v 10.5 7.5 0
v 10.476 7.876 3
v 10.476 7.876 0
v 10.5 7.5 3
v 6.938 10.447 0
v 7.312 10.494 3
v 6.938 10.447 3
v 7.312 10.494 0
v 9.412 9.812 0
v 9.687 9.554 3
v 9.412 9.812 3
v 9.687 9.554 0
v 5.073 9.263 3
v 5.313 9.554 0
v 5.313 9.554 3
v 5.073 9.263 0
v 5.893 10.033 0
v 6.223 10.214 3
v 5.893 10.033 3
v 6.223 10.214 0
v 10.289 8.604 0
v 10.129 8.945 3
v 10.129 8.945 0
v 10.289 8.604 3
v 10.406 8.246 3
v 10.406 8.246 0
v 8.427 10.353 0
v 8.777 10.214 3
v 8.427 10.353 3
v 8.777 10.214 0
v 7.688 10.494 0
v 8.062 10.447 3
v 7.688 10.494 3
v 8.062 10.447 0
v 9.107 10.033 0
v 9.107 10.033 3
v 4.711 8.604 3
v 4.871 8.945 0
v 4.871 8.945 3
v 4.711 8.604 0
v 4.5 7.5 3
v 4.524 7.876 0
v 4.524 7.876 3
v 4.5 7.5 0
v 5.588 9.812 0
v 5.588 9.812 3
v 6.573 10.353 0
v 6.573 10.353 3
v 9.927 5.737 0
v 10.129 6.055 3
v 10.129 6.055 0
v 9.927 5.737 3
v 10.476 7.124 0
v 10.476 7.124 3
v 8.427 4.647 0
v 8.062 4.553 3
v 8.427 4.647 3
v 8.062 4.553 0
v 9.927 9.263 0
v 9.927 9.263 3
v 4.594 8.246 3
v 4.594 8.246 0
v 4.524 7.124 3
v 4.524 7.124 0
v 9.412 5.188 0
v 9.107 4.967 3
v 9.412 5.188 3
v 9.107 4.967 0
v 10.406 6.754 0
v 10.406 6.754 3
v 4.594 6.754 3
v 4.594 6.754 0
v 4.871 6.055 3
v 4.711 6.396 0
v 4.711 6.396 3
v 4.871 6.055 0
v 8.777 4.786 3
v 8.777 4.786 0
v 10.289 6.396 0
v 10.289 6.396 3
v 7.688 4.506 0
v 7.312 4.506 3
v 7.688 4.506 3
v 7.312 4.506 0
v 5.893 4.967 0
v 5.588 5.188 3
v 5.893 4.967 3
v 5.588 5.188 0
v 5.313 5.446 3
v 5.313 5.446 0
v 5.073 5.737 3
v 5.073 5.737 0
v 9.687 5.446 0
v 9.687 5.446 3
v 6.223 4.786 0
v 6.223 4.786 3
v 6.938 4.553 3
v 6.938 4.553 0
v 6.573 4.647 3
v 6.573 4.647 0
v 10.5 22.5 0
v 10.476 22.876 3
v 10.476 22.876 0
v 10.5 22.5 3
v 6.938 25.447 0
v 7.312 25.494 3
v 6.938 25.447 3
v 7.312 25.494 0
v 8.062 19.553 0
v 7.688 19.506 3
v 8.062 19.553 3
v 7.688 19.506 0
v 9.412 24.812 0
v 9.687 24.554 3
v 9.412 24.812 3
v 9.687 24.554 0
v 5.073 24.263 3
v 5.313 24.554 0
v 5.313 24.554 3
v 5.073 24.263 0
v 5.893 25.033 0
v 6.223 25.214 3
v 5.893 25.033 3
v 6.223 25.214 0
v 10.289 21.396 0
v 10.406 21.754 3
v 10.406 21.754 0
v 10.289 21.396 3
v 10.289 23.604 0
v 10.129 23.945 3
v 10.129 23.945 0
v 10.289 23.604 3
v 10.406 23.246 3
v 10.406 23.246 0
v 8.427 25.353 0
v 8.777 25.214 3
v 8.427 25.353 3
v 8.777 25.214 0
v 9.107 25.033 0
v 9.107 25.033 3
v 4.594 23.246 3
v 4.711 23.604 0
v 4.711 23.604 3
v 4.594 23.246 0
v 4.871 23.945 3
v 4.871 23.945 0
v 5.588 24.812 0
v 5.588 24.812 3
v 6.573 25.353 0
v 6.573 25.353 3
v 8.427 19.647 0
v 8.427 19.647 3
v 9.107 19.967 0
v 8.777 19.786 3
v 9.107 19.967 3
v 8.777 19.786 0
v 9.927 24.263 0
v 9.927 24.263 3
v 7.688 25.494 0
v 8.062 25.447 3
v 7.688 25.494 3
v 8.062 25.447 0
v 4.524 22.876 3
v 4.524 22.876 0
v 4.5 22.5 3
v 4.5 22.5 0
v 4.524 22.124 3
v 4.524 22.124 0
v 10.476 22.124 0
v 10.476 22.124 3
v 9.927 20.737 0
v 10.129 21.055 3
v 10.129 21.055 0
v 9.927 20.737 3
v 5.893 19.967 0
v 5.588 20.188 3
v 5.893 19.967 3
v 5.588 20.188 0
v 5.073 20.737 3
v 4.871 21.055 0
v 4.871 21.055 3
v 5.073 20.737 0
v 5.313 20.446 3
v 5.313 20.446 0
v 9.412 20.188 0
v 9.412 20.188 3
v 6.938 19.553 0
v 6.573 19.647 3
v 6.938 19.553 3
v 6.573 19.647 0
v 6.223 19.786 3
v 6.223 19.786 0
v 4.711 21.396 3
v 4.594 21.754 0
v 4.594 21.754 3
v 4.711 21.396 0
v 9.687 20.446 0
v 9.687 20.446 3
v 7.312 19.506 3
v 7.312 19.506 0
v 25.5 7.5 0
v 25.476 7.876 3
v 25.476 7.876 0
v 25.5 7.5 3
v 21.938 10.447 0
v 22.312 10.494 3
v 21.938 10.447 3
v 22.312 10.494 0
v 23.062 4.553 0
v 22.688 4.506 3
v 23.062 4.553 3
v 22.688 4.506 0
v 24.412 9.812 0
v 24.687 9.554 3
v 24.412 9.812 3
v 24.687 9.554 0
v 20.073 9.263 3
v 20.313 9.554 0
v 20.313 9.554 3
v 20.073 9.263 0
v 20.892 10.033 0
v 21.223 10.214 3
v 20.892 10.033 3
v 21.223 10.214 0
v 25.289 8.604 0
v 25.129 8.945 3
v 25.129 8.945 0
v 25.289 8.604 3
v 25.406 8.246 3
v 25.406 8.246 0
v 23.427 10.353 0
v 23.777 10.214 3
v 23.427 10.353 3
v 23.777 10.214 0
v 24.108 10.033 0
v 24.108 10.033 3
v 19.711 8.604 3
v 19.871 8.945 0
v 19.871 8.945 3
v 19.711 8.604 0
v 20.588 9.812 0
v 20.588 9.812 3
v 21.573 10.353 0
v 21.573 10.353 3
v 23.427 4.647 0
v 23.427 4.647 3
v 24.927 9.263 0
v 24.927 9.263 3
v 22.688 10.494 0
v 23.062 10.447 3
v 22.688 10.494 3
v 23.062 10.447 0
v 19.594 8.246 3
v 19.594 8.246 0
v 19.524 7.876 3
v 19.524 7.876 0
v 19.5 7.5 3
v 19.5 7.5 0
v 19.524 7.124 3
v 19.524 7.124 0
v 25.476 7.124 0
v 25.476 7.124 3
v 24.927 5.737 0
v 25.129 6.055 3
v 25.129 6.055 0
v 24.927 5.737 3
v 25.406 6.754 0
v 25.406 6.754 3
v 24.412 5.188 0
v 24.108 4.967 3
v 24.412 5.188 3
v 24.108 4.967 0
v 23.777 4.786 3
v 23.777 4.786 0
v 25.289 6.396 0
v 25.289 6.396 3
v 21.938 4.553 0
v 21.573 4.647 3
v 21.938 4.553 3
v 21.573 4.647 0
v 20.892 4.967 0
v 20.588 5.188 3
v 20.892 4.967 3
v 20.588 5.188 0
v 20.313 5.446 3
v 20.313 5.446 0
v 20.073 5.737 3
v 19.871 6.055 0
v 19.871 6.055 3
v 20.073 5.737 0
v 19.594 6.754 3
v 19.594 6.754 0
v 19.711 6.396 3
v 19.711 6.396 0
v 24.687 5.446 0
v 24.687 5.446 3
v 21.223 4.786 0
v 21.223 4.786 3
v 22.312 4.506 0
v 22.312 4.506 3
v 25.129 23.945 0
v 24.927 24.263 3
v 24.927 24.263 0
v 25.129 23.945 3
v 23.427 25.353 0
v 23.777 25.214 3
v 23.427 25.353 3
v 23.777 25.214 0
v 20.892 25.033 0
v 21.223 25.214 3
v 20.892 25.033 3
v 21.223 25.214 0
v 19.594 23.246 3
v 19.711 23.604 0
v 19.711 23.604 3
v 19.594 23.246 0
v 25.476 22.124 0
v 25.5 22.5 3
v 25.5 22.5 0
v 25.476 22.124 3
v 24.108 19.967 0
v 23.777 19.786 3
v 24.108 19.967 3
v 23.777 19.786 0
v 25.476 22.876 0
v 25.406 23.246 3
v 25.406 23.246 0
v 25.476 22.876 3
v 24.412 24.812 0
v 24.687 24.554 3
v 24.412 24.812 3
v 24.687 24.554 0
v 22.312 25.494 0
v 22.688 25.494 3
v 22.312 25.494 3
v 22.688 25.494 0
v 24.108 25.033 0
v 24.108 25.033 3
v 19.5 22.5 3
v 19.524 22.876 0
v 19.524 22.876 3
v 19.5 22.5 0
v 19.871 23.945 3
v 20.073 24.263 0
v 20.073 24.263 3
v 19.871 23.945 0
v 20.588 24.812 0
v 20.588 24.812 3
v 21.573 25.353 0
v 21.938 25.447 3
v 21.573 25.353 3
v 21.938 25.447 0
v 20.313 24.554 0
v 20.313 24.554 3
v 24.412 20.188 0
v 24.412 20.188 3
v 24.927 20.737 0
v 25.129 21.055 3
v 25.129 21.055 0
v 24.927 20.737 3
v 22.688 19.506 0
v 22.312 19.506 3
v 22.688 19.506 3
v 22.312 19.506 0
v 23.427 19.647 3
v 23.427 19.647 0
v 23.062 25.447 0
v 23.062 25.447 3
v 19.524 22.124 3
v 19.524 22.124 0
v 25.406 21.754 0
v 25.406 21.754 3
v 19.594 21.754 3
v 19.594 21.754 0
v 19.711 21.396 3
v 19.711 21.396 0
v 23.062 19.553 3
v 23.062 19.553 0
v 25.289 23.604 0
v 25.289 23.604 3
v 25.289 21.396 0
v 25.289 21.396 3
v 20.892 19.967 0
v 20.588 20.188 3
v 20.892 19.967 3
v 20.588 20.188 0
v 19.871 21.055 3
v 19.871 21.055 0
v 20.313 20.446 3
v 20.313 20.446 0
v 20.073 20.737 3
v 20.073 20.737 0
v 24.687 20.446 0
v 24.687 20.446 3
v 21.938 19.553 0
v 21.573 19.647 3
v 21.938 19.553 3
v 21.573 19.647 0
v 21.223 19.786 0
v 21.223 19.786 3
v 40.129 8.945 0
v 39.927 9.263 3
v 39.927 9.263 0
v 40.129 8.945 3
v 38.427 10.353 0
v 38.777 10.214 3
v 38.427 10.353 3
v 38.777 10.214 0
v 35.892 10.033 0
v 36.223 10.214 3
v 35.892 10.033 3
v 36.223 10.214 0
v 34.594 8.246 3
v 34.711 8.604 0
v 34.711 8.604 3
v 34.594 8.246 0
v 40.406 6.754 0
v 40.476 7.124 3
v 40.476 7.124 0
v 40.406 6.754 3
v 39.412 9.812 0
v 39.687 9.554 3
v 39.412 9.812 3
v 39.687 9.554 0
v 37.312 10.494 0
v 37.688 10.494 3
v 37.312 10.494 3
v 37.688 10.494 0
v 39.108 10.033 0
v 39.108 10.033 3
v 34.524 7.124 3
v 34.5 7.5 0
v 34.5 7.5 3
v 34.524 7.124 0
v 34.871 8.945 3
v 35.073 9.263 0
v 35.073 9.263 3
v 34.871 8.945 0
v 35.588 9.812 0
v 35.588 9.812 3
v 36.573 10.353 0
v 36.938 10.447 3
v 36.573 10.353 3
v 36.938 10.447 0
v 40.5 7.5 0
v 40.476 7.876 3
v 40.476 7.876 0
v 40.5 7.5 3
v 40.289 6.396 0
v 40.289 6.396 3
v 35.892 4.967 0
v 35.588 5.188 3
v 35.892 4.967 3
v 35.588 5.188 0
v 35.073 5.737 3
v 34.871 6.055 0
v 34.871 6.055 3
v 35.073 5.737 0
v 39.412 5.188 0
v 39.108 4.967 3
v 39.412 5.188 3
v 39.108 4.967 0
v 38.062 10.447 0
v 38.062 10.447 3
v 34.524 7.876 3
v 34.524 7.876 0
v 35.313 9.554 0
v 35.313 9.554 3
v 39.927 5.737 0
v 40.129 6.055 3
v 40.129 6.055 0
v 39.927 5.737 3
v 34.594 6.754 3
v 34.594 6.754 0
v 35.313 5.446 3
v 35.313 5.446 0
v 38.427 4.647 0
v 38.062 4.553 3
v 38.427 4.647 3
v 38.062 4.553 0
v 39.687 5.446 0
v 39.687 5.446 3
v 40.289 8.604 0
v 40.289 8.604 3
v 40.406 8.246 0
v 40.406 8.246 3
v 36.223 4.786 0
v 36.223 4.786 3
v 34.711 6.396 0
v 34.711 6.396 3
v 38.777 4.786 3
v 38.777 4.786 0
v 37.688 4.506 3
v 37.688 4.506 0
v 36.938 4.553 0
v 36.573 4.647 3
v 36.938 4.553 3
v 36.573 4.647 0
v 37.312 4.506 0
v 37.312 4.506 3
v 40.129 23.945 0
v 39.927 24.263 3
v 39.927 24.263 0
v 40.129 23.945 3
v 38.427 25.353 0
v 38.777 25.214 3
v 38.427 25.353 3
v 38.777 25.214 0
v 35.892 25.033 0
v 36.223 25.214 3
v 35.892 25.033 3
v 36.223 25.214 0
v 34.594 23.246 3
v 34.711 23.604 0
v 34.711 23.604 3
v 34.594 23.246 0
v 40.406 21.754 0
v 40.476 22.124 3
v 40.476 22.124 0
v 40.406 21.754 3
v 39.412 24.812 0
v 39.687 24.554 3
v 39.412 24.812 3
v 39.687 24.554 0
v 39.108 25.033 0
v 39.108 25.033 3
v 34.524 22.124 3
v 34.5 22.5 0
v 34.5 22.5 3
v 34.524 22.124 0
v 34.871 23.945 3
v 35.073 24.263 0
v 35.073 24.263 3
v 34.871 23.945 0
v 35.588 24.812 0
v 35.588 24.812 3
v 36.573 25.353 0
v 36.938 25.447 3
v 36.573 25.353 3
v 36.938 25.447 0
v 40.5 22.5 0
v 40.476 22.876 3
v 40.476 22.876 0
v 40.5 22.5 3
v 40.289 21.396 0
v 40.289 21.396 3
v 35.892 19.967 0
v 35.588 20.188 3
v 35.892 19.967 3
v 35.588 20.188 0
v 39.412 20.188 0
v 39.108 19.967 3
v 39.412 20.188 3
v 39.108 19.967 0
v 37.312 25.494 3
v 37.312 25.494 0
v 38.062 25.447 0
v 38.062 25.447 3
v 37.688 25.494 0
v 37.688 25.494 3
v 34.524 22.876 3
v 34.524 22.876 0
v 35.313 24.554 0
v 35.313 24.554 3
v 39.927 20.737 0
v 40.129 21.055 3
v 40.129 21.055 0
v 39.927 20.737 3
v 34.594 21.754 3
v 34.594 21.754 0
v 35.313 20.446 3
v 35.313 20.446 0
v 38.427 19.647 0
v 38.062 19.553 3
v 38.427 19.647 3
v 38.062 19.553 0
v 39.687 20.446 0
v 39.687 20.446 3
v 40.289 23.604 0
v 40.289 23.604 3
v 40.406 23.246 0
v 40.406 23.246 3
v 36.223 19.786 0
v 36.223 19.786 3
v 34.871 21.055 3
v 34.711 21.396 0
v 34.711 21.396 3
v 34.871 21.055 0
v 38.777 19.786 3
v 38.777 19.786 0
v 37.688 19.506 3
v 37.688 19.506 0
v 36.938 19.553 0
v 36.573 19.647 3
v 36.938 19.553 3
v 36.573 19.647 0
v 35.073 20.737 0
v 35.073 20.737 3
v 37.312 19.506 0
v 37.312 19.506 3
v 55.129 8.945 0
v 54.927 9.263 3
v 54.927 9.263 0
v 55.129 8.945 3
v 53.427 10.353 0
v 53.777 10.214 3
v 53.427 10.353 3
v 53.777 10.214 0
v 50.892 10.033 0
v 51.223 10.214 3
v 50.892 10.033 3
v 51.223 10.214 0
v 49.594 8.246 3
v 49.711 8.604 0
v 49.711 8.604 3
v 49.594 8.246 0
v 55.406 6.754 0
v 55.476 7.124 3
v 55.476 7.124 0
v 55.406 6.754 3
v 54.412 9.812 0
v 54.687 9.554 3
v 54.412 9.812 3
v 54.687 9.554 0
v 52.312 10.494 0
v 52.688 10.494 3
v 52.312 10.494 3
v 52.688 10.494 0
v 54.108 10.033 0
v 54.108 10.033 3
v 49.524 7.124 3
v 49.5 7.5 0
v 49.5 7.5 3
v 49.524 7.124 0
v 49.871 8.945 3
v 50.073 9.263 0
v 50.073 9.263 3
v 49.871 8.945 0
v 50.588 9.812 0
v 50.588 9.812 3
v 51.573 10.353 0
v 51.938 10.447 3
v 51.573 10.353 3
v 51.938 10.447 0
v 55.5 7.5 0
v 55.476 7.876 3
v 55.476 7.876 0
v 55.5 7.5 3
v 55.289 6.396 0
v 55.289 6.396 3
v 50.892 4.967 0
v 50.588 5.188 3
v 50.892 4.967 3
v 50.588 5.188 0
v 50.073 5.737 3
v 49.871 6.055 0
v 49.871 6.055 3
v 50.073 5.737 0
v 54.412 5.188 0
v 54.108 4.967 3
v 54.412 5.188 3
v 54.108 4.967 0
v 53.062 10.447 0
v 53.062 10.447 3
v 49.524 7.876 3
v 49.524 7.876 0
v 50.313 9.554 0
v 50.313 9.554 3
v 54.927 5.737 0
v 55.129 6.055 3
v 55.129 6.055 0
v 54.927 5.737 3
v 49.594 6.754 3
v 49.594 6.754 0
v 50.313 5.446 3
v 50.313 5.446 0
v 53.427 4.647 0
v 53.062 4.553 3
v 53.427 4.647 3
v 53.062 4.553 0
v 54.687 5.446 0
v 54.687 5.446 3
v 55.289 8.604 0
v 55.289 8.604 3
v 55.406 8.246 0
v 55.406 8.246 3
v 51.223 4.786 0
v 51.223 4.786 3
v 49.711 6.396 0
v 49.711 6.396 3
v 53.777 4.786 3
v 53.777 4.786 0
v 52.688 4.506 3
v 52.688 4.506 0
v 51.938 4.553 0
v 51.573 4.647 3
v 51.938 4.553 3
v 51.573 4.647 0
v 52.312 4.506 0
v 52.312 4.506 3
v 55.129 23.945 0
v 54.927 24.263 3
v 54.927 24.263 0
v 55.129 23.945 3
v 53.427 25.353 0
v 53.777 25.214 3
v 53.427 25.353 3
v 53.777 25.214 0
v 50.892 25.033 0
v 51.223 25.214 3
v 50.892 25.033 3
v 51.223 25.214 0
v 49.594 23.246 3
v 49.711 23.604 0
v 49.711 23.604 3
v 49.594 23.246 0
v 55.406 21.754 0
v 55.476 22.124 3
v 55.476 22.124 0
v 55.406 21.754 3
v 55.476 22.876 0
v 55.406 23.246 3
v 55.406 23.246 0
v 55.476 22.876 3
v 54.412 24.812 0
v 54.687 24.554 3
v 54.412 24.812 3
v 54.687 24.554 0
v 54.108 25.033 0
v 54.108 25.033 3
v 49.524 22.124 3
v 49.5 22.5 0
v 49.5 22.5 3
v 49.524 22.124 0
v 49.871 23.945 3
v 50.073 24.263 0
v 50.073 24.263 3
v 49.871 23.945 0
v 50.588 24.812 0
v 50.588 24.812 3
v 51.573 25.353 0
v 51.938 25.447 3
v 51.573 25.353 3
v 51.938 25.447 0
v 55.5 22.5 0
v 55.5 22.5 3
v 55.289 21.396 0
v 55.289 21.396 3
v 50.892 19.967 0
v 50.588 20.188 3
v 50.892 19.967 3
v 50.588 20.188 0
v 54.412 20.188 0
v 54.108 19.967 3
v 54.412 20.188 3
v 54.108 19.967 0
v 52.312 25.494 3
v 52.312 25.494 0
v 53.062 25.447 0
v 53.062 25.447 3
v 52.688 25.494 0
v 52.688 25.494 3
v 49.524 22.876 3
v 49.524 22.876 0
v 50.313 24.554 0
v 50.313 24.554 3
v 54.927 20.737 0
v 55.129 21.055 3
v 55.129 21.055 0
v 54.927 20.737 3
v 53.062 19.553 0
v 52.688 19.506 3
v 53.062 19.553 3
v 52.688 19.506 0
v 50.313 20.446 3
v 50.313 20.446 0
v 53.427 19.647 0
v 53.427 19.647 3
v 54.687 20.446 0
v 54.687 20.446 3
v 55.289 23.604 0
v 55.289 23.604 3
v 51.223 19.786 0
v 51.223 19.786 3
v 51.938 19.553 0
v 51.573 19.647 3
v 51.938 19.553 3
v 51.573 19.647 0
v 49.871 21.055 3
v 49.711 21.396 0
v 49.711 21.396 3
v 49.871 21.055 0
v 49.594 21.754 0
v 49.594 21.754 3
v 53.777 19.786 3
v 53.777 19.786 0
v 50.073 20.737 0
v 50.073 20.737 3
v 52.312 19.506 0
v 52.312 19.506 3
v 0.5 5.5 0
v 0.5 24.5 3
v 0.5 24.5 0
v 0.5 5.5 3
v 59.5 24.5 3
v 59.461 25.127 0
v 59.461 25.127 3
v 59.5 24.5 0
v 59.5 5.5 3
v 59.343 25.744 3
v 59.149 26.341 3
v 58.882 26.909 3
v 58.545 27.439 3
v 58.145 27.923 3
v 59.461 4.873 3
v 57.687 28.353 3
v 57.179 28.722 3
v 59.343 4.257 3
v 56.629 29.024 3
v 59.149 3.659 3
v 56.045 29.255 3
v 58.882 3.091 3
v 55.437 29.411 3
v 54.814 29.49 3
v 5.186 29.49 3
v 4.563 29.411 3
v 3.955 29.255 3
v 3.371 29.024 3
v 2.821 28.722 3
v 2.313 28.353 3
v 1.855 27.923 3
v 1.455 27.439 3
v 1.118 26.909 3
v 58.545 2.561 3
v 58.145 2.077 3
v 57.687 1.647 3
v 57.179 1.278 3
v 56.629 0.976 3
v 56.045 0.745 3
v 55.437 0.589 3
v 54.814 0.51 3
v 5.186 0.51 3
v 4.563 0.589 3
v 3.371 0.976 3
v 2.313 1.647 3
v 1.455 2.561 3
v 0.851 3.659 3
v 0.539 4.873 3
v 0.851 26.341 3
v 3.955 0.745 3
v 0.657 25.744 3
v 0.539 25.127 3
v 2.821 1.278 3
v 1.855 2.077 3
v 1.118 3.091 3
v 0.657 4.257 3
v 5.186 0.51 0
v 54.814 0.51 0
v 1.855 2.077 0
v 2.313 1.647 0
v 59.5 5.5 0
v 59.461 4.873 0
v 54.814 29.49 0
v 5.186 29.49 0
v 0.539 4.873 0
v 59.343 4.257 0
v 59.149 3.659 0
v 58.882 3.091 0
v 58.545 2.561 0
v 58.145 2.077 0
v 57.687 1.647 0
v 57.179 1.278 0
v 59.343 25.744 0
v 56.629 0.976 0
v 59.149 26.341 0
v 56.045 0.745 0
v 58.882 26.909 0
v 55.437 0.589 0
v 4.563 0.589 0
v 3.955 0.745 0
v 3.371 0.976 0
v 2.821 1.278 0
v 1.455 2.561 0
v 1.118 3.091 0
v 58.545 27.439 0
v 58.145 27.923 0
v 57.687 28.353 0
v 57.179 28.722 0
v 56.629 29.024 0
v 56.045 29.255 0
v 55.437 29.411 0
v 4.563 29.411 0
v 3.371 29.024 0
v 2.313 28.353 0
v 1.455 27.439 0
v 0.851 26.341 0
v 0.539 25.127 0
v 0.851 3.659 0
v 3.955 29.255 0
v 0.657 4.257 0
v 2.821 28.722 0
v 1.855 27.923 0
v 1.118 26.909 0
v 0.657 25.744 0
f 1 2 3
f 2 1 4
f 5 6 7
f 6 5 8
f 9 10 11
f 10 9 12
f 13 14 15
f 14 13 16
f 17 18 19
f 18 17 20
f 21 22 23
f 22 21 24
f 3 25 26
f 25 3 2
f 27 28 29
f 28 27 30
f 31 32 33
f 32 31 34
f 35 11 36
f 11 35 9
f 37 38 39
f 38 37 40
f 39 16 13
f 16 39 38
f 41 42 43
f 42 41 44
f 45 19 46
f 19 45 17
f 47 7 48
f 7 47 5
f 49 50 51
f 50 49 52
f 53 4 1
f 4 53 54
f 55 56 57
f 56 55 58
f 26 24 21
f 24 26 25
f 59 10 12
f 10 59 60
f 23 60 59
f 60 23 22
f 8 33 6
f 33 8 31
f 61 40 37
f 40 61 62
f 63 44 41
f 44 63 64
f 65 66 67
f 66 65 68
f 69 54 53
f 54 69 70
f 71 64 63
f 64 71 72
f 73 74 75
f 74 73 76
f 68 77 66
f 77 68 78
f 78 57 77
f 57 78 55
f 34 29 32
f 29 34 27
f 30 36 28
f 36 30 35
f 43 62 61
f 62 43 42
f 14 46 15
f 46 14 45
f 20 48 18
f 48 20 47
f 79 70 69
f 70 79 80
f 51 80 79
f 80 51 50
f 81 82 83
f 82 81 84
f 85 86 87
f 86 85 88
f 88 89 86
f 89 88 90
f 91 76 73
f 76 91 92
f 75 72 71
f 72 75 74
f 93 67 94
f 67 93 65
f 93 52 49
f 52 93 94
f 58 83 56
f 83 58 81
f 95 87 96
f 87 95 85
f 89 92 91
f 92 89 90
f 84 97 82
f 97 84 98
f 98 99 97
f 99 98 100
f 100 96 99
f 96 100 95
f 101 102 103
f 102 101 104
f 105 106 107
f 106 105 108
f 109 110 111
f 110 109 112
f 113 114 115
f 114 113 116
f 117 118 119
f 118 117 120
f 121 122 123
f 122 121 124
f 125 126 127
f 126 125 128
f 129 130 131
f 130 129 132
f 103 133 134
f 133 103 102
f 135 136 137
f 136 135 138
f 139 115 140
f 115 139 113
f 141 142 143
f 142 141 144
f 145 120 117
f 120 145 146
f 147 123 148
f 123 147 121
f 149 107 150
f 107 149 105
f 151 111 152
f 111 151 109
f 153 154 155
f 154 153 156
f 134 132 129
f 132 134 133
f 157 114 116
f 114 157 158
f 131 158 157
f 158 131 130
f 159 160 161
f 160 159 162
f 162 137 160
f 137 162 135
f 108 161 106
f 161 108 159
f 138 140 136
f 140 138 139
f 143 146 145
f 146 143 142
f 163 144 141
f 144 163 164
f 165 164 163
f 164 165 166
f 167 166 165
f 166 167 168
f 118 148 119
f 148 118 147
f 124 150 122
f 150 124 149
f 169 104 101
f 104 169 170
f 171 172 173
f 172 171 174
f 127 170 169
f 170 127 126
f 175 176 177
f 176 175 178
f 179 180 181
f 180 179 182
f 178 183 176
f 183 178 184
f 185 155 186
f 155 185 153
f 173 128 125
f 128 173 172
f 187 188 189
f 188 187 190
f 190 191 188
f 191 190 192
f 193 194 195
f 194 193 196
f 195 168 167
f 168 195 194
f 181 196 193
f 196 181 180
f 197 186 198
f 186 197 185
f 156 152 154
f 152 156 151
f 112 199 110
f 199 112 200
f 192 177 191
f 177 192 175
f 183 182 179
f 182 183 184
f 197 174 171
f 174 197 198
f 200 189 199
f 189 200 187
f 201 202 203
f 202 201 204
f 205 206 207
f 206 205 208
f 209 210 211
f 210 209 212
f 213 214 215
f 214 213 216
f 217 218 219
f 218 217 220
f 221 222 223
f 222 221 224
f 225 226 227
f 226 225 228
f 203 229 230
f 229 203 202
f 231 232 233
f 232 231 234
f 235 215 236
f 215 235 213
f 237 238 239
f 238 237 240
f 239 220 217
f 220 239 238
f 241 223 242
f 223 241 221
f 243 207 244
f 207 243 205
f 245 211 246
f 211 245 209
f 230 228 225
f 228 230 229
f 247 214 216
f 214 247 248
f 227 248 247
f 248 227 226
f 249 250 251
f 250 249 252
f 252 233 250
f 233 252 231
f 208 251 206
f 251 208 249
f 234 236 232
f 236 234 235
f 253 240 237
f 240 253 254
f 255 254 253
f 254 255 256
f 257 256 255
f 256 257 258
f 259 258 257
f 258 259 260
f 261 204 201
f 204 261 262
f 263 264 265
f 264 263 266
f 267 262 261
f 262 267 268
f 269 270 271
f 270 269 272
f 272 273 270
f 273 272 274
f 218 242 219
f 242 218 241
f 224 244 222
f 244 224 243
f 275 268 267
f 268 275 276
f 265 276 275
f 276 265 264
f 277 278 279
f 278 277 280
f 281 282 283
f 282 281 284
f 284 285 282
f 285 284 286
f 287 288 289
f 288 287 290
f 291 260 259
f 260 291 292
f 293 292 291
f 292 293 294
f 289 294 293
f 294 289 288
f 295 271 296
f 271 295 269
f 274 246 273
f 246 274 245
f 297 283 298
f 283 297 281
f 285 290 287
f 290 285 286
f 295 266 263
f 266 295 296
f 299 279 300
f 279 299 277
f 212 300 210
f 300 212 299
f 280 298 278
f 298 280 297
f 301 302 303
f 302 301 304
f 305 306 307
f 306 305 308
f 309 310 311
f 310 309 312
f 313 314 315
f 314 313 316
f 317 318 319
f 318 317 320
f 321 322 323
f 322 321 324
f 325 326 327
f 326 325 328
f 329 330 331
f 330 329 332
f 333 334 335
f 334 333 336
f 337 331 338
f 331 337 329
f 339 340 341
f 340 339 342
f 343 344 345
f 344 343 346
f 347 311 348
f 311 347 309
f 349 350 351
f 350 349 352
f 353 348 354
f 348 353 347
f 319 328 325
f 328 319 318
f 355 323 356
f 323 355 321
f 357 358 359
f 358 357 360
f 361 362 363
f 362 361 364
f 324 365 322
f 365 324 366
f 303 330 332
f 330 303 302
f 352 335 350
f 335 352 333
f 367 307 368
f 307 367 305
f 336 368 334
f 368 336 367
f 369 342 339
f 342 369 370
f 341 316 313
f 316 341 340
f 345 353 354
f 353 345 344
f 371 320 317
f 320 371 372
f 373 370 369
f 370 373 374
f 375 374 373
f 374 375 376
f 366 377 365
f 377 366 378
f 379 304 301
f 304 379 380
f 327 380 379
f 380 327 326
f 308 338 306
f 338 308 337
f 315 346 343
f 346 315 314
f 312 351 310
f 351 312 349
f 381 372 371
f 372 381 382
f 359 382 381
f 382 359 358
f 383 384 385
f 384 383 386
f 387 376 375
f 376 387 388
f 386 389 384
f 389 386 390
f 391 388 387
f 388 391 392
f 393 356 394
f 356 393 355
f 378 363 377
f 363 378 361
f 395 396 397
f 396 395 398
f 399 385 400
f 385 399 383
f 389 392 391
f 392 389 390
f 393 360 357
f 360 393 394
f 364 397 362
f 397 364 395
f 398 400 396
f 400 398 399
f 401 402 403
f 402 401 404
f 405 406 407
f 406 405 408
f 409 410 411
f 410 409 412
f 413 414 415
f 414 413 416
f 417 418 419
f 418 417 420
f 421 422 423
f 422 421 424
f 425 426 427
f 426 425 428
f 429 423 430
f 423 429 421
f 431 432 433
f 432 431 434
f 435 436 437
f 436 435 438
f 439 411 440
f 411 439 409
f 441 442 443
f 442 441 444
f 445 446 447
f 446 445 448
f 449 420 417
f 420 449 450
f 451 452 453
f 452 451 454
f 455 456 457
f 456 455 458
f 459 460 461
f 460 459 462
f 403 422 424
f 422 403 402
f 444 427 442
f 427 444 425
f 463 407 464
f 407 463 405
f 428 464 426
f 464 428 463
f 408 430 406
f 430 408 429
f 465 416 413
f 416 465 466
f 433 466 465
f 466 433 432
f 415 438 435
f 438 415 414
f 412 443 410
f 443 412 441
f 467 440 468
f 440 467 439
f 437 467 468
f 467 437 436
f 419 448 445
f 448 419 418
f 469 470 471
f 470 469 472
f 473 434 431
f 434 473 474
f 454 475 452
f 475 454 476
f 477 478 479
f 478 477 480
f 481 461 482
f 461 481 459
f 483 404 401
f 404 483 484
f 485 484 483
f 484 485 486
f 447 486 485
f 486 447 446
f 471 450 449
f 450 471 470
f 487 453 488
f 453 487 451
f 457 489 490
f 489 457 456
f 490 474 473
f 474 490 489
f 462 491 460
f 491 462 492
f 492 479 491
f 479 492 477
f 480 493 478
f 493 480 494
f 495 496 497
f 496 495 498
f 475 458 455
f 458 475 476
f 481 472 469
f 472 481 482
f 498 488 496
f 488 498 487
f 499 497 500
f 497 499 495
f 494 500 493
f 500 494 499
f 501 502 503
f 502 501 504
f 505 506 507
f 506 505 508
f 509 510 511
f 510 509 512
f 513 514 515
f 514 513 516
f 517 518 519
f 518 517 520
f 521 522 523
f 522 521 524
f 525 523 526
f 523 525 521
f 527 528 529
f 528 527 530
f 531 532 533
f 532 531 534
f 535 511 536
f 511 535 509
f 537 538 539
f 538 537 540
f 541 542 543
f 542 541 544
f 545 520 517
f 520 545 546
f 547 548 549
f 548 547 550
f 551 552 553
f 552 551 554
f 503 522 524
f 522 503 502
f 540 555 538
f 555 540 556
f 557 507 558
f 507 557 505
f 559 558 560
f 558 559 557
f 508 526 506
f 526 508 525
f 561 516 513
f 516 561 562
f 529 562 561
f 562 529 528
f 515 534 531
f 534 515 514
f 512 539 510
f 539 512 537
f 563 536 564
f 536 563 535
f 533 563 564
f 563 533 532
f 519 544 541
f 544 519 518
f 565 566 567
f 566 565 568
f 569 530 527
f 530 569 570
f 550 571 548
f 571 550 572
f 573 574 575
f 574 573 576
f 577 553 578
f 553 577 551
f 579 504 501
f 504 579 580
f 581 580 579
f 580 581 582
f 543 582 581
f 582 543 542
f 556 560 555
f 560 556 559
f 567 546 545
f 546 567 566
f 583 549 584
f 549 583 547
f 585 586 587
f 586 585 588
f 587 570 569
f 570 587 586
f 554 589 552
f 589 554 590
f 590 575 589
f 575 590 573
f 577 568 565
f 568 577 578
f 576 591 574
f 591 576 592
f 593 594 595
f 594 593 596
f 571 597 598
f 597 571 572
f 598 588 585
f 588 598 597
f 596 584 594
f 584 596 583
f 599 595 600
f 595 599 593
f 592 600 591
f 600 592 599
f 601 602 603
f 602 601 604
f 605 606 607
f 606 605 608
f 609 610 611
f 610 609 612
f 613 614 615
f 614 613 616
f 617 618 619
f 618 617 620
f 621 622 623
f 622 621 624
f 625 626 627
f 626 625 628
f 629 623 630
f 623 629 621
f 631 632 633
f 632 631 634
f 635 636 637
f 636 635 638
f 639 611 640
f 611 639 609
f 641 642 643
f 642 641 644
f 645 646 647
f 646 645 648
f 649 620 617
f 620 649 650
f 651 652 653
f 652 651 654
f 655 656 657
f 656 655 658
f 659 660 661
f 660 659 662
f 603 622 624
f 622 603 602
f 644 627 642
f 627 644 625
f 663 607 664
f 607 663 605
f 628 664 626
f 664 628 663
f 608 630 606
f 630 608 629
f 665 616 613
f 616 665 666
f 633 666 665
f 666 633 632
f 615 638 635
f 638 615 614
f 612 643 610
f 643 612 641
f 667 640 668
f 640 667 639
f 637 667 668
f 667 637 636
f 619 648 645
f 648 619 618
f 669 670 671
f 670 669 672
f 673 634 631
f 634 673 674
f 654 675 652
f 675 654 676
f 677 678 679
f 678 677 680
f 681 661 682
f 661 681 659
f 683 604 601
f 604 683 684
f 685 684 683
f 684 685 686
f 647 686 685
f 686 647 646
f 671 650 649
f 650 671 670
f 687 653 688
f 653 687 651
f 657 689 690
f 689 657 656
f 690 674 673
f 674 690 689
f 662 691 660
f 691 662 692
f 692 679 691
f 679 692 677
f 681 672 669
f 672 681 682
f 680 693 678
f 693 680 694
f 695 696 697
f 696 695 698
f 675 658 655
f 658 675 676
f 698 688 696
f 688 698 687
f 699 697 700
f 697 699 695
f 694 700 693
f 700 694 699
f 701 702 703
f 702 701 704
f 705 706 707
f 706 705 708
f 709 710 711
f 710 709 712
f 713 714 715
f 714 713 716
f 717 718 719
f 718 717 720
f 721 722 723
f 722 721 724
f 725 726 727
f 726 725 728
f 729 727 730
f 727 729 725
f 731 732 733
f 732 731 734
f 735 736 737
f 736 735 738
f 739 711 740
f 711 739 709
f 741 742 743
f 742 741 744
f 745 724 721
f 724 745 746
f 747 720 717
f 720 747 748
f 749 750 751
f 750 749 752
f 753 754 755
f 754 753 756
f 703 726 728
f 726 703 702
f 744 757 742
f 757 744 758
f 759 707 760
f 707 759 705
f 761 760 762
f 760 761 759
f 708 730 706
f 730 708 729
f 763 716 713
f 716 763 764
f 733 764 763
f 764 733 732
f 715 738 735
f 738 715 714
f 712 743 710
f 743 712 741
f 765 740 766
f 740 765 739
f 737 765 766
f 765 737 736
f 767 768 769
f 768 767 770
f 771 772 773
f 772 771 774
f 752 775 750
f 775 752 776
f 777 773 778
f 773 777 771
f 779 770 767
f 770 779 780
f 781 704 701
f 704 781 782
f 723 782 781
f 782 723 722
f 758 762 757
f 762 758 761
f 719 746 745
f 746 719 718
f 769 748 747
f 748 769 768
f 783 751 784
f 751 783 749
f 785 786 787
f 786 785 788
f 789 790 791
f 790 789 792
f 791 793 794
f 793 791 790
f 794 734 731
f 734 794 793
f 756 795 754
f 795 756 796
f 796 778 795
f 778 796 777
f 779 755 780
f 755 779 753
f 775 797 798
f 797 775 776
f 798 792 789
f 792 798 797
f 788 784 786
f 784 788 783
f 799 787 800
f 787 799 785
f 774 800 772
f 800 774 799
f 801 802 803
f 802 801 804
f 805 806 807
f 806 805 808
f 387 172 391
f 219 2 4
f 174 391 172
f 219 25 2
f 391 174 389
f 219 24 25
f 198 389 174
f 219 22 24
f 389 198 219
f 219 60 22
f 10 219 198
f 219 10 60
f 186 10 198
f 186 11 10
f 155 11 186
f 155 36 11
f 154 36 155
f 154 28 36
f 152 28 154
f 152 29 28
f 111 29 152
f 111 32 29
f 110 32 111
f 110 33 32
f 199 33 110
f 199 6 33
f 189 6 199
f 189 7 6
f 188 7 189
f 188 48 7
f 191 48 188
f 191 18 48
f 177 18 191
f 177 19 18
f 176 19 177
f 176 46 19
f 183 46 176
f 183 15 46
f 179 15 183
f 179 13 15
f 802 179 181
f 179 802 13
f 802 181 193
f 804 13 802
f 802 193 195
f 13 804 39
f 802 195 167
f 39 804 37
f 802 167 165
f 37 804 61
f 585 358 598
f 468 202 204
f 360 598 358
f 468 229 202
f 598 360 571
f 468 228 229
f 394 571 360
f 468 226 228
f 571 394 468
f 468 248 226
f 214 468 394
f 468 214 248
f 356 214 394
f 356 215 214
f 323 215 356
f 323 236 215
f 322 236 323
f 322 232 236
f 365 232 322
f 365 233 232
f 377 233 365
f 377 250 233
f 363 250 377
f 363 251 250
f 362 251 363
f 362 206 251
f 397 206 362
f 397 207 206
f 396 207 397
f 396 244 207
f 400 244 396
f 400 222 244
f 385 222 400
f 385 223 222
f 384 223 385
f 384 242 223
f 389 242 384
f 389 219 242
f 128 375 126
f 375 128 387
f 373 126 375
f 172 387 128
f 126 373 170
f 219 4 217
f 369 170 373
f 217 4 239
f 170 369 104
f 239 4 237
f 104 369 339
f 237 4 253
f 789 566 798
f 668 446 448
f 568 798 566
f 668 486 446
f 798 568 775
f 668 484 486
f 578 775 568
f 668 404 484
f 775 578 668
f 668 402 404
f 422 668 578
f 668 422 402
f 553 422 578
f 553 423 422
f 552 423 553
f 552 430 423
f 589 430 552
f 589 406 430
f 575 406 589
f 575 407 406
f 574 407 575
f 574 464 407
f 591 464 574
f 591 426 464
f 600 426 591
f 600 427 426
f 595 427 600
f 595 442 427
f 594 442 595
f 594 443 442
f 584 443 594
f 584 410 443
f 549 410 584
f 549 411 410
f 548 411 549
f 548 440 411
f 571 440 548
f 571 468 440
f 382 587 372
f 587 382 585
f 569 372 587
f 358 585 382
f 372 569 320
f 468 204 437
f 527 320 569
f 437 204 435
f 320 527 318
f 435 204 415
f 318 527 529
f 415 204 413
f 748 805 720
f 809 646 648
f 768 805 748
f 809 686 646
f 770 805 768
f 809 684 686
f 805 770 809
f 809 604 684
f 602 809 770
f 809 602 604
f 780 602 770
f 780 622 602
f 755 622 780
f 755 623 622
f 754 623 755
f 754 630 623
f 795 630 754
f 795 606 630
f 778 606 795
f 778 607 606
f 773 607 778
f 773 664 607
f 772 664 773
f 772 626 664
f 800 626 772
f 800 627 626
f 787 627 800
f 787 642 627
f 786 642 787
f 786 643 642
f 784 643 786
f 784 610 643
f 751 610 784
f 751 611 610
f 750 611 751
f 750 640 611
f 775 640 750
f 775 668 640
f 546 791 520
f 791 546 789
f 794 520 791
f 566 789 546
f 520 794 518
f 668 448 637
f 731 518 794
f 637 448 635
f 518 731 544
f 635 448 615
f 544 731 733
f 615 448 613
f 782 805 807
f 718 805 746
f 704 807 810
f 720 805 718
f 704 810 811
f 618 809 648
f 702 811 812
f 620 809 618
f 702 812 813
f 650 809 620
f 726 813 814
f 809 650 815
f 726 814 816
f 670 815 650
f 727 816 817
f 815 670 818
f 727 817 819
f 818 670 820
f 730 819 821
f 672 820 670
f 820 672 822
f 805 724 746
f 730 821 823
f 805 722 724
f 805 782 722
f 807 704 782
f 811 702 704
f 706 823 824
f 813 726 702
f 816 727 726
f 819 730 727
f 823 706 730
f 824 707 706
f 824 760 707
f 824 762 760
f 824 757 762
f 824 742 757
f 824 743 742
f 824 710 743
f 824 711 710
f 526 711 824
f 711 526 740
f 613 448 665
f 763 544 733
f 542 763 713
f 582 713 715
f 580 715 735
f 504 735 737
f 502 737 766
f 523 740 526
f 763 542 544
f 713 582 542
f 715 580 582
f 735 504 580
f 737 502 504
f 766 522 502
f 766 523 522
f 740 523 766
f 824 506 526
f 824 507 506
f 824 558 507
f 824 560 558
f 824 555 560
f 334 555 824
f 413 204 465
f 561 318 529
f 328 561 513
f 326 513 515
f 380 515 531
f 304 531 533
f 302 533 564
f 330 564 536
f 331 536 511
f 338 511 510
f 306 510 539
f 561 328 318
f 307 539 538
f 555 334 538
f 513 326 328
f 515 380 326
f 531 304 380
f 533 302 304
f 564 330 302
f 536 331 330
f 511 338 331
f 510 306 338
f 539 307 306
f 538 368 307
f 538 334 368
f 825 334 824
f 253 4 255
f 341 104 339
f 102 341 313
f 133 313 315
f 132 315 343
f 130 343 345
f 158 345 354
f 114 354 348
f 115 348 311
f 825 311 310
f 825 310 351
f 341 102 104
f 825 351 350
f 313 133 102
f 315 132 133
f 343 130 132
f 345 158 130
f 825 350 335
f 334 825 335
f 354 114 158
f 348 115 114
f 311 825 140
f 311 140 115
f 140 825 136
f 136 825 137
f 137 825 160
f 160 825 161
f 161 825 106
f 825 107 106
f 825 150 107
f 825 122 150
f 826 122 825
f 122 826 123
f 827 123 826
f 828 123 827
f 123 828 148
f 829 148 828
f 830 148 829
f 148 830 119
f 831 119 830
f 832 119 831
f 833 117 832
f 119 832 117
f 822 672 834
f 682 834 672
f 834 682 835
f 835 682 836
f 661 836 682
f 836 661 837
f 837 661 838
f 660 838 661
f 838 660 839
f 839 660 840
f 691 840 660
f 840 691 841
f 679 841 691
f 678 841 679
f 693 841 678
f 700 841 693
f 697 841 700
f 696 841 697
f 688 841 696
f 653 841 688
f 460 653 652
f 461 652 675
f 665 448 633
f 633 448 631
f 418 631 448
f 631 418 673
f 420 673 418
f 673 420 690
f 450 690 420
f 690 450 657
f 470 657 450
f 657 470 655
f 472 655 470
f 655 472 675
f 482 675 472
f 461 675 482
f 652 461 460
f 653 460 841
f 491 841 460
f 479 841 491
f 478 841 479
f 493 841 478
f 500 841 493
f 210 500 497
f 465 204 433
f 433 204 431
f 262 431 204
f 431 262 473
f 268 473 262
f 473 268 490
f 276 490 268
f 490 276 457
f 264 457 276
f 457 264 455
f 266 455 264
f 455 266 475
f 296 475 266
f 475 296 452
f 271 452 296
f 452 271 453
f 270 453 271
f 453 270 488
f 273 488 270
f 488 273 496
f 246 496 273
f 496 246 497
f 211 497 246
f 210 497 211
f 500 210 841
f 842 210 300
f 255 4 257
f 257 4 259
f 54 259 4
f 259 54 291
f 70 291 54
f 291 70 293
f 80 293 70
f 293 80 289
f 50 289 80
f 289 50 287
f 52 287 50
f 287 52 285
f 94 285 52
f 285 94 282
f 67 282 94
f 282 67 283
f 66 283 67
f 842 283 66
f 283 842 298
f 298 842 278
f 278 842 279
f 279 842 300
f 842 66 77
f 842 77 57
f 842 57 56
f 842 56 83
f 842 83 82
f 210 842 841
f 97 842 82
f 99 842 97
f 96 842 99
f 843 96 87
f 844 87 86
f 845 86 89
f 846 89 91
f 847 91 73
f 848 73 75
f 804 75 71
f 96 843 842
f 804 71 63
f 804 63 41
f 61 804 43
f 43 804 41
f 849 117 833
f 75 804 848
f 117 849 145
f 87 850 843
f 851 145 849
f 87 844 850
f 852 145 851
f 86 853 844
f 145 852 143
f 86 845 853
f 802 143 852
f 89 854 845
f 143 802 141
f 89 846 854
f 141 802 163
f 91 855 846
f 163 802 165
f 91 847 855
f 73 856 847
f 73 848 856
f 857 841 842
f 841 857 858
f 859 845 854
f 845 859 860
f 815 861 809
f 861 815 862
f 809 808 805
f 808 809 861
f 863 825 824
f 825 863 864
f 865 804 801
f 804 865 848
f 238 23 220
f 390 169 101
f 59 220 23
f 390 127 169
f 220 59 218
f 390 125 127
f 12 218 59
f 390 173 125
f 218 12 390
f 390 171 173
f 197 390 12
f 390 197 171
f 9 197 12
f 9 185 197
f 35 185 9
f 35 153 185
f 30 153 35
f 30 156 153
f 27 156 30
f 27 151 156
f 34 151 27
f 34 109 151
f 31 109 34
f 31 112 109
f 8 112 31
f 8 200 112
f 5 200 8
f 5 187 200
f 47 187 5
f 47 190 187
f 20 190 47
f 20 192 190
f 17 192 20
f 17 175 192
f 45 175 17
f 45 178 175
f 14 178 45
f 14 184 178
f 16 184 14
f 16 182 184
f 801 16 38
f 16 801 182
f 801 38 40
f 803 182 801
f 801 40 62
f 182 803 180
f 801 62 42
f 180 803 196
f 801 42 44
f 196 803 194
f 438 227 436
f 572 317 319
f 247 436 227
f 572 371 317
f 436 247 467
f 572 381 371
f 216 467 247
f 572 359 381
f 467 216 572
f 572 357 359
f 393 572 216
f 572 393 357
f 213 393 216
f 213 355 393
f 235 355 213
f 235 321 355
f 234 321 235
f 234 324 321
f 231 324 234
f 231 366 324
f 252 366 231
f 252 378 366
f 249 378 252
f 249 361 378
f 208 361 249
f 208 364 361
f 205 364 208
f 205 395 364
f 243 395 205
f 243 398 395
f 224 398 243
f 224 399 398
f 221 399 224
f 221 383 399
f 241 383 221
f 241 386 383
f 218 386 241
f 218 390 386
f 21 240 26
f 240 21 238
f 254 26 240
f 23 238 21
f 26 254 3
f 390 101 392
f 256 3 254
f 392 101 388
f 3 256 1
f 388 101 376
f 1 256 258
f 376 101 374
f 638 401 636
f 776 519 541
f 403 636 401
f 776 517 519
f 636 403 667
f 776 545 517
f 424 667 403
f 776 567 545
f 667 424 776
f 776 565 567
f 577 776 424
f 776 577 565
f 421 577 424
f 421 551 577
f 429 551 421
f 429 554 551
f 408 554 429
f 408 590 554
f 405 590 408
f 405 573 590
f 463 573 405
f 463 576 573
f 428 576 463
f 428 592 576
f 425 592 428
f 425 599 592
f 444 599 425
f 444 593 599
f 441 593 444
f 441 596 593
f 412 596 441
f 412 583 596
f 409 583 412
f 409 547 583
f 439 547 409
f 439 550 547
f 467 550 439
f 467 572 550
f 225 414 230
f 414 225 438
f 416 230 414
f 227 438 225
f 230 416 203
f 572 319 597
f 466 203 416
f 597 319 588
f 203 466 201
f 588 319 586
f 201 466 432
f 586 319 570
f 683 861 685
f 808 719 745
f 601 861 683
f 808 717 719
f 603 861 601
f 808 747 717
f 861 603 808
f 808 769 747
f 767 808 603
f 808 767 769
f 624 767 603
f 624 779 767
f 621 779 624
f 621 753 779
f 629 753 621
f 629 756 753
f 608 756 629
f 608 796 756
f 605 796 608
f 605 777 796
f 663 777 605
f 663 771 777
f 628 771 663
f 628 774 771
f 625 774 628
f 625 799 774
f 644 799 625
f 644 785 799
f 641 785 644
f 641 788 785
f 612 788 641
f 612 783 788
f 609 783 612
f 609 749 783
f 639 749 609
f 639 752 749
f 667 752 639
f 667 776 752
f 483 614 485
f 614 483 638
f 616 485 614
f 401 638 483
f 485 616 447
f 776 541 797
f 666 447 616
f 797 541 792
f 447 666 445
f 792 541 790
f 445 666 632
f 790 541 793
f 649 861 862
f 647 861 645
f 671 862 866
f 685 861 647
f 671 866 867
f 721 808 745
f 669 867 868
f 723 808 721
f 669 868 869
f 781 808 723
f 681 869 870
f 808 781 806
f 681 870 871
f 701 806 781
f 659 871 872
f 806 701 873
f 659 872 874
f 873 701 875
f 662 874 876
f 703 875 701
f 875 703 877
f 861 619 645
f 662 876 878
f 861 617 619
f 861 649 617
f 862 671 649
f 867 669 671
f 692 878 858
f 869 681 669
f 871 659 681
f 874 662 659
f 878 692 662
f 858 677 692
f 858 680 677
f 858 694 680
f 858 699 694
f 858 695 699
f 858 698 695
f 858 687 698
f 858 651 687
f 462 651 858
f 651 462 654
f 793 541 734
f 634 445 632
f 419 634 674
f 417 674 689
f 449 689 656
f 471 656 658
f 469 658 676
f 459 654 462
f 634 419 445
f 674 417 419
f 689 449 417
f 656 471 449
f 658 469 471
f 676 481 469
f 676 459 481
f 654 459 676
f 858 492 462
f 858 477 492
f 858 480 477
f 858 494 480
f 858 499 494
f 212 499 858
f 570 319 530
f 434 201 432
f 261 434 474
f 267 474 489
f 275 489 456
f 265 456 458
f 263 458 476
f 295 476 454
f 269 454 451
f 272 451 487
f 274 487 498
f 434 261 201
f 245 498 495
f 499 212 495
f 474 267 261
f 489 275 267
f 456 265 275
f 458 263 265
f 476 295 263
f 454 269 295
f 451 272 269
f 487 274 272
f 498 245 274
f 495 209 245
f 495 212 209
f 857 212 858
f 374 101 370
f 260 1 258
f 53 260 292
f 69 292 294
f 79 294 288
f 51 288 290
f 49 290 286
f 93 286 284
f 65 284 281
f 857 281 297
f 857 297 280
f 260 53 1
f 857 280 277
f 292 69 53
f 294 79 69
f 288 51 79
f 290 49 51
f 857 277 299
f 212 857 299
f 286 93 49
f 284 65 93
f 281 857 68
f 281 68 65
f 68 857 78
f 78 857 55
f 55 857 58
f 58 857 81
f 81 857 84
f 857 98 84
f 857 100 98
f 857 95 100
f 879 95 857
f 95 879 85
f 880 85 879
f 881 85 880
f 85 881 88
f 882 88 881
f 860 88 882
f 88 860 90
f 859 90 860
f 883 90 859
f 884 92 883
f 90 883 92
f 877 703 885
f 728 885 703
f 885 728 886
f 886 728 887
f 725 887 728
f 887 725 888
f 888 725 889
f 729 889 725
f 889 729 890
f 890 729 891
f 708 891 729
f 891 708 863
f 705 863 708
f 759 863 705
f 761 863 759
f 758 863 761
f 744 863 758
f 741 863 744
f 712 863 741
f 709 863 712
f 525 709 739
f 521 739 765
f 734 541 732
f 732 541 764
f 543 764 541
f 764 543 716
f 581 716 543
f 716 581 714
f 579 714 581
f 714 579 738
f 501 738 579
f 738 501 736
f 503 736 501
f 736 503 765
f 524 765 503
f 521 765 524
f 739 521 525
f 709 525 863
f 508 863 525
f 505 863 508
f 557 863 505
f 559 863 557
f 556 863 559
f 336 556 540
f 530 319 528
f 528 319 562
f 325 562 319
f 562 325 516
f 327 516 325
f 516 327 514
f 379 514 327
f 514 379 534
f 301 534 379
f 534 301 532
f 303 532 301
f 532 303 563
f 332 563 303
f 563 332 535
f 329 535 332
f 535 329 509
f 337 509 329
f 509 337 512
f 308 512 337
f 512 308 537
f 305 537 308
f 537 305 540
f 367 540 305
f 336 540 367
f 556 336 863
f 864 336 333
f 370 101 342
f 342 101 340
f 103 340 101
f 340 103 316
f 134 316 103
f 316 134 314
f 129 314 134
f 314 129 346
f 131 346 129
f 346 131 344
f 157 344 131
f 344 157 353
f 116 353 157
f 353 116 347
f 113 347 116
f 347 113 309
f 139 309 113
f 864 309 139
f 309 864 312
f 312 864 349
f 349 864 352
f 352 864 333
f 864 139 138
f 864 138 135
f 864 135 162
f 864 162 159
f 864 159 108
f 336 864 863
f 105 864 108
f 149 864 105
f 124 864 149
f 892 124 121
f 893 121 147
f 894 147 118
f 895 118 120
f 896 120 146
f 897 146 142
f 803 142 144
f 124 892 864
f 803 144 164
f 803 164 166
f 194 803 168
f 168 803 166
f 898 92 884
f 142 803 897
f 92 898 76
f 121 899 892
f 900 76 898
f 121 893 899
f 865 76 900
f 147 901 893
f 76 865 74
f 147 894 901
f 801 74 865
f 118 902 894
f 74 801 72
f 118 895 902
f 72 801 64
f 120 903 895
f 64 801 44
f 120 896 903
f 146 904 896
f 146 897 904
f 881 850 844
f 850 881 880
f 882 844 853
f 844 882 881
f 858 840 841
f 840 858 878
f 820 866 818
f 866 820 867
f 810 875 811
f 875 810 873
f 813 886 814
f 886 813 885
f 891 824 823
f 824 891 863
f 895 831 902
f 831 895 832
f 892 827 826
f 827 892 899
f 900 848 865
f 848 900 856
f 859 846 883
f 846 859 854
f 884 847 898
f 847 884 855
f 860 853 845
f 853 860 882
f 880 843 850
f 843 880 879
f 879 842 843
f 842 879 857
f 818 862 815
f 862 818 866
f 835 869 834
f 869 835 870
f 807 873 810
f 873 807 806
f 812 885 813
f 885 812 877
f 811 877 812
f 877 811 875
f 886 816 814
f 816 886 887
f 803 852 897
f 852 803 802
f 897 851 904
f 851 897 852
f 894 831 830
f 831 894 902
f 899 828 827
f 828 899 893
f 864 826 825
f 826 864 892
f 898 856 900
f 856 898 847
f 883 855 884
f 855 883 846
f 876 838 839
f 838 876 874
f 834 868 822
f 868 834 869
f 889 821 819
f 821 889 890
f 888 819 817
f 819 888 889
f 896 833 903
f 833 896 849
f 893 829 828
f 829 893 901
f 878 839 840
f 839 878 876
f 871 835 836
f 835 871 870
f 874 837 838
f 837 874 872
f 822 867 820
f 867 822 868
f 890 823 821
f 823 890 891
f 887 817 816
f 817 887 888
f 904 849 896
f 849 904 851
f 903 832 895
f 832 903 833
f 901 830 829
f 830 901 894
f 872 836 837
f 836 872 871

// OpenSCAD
// Generated by SolidPython 1.1.3 on 2023-01-30 13:27:44
$fn = 50;


difference() {
	union() {
		translate(v = [30.0000000000, 15.0000000000, 0]) {
			rotate(a = [0, 0, 0]) {
				hull() {
					translate(v = [-24.5000000000, 9.5000000000, 0]) {
						rotate(a = [0, 0, 0]) {
							translate(v = [0, 0, 0]) {
								rotate(a = [0, 0, 0]) {
									cylinder(h = 3, r = 5);
								}
							}
						}
					}
					translate(v = [24.5000000000, 9.5000000000, 0]) {
						rotate(a = [0, 0, 0]) {
							translate(v = [0, 0, 0]) {
								rotate(a = [0, 0, 0]) {
									cylinder(h = 3, r = 5);
								}
							}
						}
					}
					translate(v = [-24.5000000000, -9.5000000000, 0]) {
						rotate(a = [0, 0, 0]) {
							translate(v = [0, 0, 0]) {
								rotate(a = [0, 0, 0]) {
									cylinder(h = 3, r = 5);
								}
							}
						}
					}
					translate(v = [24.5000000000, -9.5000000000, 0]) {
						rotate(a = [0, 0, 0]) {
							translate(v = [0, 0, 0]) {
								rotate(a = [0, 0, 0]) {
									cylinder(h = 3, r = 5);
								}
							}
						}
					}
				}
			}
		}
	}
	union() {
		translate(v = [7.5000000000, 7.5000000000, 0]) {
			rotate(a = [0, 0, 0]) {
				translate(v = [0, 0, -50]) {
					rotate(a = [0, 0, 0]) {
						cylinder(h = 100, r = 3.0000000000);
					}
				}
			}
		}
		translate(v = [7.5000000000, 22.5000000000, 0]) {
			rotate(a = [0, 0, 0]) {
				translate(v = [0, 0, -50]) {
					rotate(a = [0, 0, 0]) {
						cylinder(h = 100, r = 3.0000000000);
					}
				}
			}
		}
		translate(v = [22.5000000000, 7.5000000000, 0]) {
			rotate(a = [0, 0, 0]) {
				translate(v = [0, 0, -50]) {
					rotate(a = [0, 0, 0]) {
						cylinder(h = 100, r = 3.0000000000);
					}
				}
			}
		}
		translate(v = [22.5000000000, 22.5000000000, 0]) {
			rotate(a = [0, 0, 0]) {
				translate(v = [0, 0, -50]) {
					rotate(a = [0, 0, 0]) {
						cylinder(h = 100, r = 3.0000000000);
					}
				}
			}
		}
		translate(v = [37.5000000000, 7.5000000000, 0]) {
			rotate(a = [0, 0, 0]) {
				translate(v = [0, 0, -50]) {
					rotate(a = [0, 0, 0]) {
						cylinder(h = 100, r = 3.0000000000);
					}
				}
			}
		}
		translate(v = [37.5000000000, 22.5000000000, 0]) {
			rotate(a = [0, 0, 0]) {
				translate(v = [0, 0, -50]) {
					rotate(a = [0, 0, 0]) {
						cylinder(h = 100, r = 3.0000000000);
					}
				}
			}
		}
		translate(v = [52.5000000000, 7.5000000000, 0]) {
			rotate(a = [0, 0, 0]) {
				translate(v = [0, 0, -50]) {
					rotate(a = [0, 0, 0]) {
						cylinder(h = 100, r = 3.0000000000);
					}
				}
			}
		}
		translate(v = [52.5000000000, 22.5000000000, 0]) {
			rotate(a = [0, 0, 0]) {
				translate(v = [0, 0, -50]) {
					rotate(a = [0, 0, 0]) {
						cylinder(h = 100, r = 3.0000000000);
					}
				}
			}
		}
	}
}
/***********************************************
*********      SolidPython code:      **********
************************************************
 
from solid import *
import os
import subprocess

import oomB

import opsc_library_gen

mode = "laser"
#mode = "3d_print"

defined_objects = {}

radius_dict = {}
countersunk_dict = {}


def set_mode(m):
    global mode
    mode = m
    radius_dict['M6'] = 6.5/2
    radius_dict['M3'] = 3.3/2
    if mode == "laser":
        radius_dict['M6'] = 6/2
        radius_dict['M3'] = 3/2

    countersunk_dict['M3'] = {}
    countersunk_dict['M3']['little_rad'] = radius_dict['M3']
    countersunk_dict['M3']['big_rad'] = (5.5+0.6)/2
    if mode == "laser":
        countersunk_dict['M3']['big_rad'] = (4.75+0.6)/2
        countersunk_dict['M3']['little_rad'] = (4.75+0.6)/2

    countersunk_dict['M3']['height'] = 1.7


def opsc_make_object(filename, objects, save_type="none",resolution=50, layers = 1, tilediff = 200, mode="laser"):
    set_mode(mode)
    save_type = save_type.lower()
    os.makedirs(os.path.dirname(filename), exist_ok=True)
    final_object = opsc_get_object(objects)
    # Save the final object to the specified filename    
    scad_render_to_file(final_object, filename, file_header='$fn = %s;' % resolution, include_orig_code=True)
    if mode == "laser":
        filename_laser = filename.replace(".scad","-flat.scad")
        scad_render_to_file(getLaser(final_object, layers=layers, tilediff=tilediff), filename_laser, file_header='$fn = %s;' % resolution, include_orig_code=True)
        if save_type == "all":
            saveToAll(filename_laser)
        elif save_type == "dxf":
            saveToDxf(filename_laser)
    if save_type == "all":
        saveToAll(filename)
    elif save_type == "dxf":
        saveToDxf(filename)


def opsc_get_object(objects):
    # Create the solidpython objects
    positive_objects = [get_opsc_item(obj) for obj in objects if obj['type'] == 'positive']
    negative_objects = [get_opsc_item(obj) for obj in objects if obj['type'] == 'negative']
    # Union the positive objects
    positive_object = union()(*positive_objects)
    # Union the negative objects
    negative_object = union()(*negative_objects)
    # Create the final object by subtracting the negative objects from the positive objects
    return difference()(positive_object, negative_object)

def get_opsc_item(params):
    # A dictionary to map radius string values to numerical values
    #radius_dict = {'small': 5, 'medium': 10, 'large': 15}
    # An array of function names for basic shapes
    basic_shapes = ['cube', 'sphere', 'cylinder']
    
    # An array of function names for other shapes
    other_shapes = ['hole', 'slot', 'rounded_rectangle', 'countersunk']
    


    # Convert radius to r if present, and remove radius from the params dictionary
    if 'radius' in params:
        if isinstance(params['radius'], str):
            # Use the radius_dict to map the radius string value to a numerical value
            params['r'] = radius_dict[params['radius']]
        else:
            params['r'] = params['radius']
        del params['radius']
    

    # Check if the object type is a basic shape
    if params['shape'] in basic_shapes:
        # Remove shape and unexpected dictionary values
        allowed_keys = {'size', 'r', 'r1', 'r2', 'd', 'h', 'rw', 'rh', 'dw', 'dh'}
        shape_params = {k: v for k, v in params.items() if k in allowed_keys}

        # Call the corresponding function for the shape parameter, using ** notation to pass the shape_params dictionary as keyword arguments
        return get_opsc_transform(params,globals()[params['shape']](**shape_params))
    
    # If the object type is not a basic shape, check if it's a defined object or one of the other shapes
    elif params['shape'] in other_shapes:
        # Call the corresponding function for the shape parameter, passing the params dictionary as an argument
        p2 = copy.deepcopy(params)
        p2["pos"] = [0,0,0]
        return get_opsc_transform(params,globals()[params['shape']](p2))
    
    # If the object is not a basic shape or a defined object, try to import it from a .scad file
    else:
        obj = defined_objects[params['shape']]
        return get_opsc_transform(params,obj)

def get_opsc_transform(params, solid_obj):
    # Rotate the object based on the 'rot' field in the params dictionary, or the 'rotX', 'rotY', and 'rotZ' fields if 'rot' is not present
    rot = params.get('rot', [])
    if rot:
        rotX, rotY, rotZ = rot
    else:
        rotX = params.get('rotX', 0)
        rotY = params.get('rotY', 0)
        rotZ = params.get('rotZ', 0)
    solid_obj = rotate([rotX, rotY, rotZ])(solid_obj)

    # Translate the object based on the 'pos' field in the params dictionary, or the 'x', 'y', and 'z' fields if 'pos' is not present
    pos = params.get('pos', [])
    if pos:
        x, y, z = pos
    else:
        x = params.get('x', 0)
        y = params.get('y', 0)
        z = params.get('z', 0)
    solid_obj = translate([x, y, z])(solid_obj)
    return solid_obj


import random

def opsc_easy_array(type, shape, repeats, pos_start, shift_arr, **kwargs):
    for i in range(0,3):
        repeats.append(1)
        pos_start.append(0)
        shift_arr.append(0)
    return_objects = []

    for x in range(0,repeats[0]):
        for y in range(0,repeats[1]):
            for z in range(0,repeats[2]):
                return_objects.append(opsc_easy(type, shape, pos=[pos_start[0]+x*shift_arr[0],pos_start[1]+y*shift_arr[1],pos_start[2]+z*shift_arr[2]], **kwargs))
    return return_objects                



def opsc_easy(type, shape, **kwargs):
    obj = {
        'type': type,
        'shape': shape
    }
    for param in ['size', 'r', 'r1', 'r2', 'd', 'h', 'rw', 'rh', 'dw', 'dh', 'pos', 'x', 'y', 'z', 'rot', 'rotX', 'rotY', 'rotZ', "w"]:
        if param in kwargs:
            obj[param] = kwargs[param]
    return obj

def hole(params):
    p2 = copy.deepcopy(params)  
    # Check if the radius is a string and replace it with the corresponding value from the dictionary
    if isinstance(p2['r'], str):
        p2['r'] = radius_dict[p2['r']]
    
    # Set the height to 100 if not specified
    if 'h' not in p2:
        p2['h'] = 100
        p2["pos"] = [0,0,-50]
    p2["center"] = True
    # Create the cylinder object
    p2["shape"] = "cylinder"
    p2["type"] = "positive"

    return get_opsc_item(p2)

import copy

def countersunk(params):
    p2 = copy.deepcopy(params)
    counter_rad = p2['r']
    p2['r'] = radius_dict[p2['r']]
    hp = copy.deepcopy(p2)
    hp["type"] = "positive"
    hp["shape"] = "hole"
    del hp["rot"]
    hol = get_opsc_item(hp)
    
    cp = copy.deepcopy(p2)
    cp["h"] = countersunk_dict[counter_rad]["height"]
    cp["r2"] = countersunk_dict[counter_rad]["little_rad"]
    cp["r1"] = countersunk_dict[counter_rad]["big_rad"]
    del cp["r"]
    del cp["rot"]
    cp["type"] = "positive"
    cp["shape"] = "cylinder"
    cp["pos"] = [0,0,0]

    top = get_opsc_item(cp)
    return union()(hol,top)



def slot(params):  
    p2 = copy.deepcopy(params) 
    if isinstance(p2['r'], str):
        p2['r'] = radius_dict[p2['r']]
    p2["type"] = "positive"
    p2["shape"] = "hole"
    del p2["rot"]
    p2["pos"] = [0,0,0]
    left = copy.deepcopy(p2)
    right = copy.deepcopy(p2)
    left["pos"][0] = p2["w"] / 2 - p2["r"] 
    
    right["pos"][0] = -p2["w"] / 2 + p2["r"] 
    pass
    leftObj = get_opsc_item(left)
    rightObj = get_opsc_item(right)
    return hull()(leftObj, rightObj)

def rounded_rectangle(params):   
    p2 = copy.deepcopy(params) 
    p2["h"] = p2["size"][2]
    p2["pos"] = p2.get("pos", [0, 0, 0]) 
    p2["type"] = "positive"
    p2["shape"] = "hole"
    p2["pos"] = [0,0,0]
    
    if 'rot' in p2:
        del p2["rot"]   
    if 'r' not in p2:
        p2["r"] = 5 
    tl = copy.deepcopy(p2)
    tr = copy.deepcopy(p2)
    bl = copy.deepcopy(p2)
    br = copy.deepcopy(p2)
    tl["pos"][0] = -(p2["size"][0] - p2["r"]*2)/2
    tl["pos"][1] = (p2["size"][1] - p2["r"]*2)/2
    tr["pos"][0] = (p2["size"][0] - p2["r"]*2)/2
    tr["pos"][1] = (p2["size"][1] - p2["r"]*2)/2
    bl["pos"][0] = -(p2["size"][0] - p2["r"]*2)/2
    bl["pos"][1] = -(p2["size"][1] - p2["r"]*2)/2
    br["pos"][0] = (p2["size"][0] - p2["r"]*2)/2
    br["pos"][1] = -(p2["size"][1] - p2["r"]*2)/2
    del tl["size"]
    del tr["size"]
    del bl["size"]
    del br["size"]
    tlo = get_opsc_item(tl)
    tro = get_opsc_item(tr)
    blo = get_opsc_item(bl)
    bro = get_opsc_item(br)    
    return hull()(tlo, tro, blo, bro)



def import_scad_object(filename):
    # Import the .scad file and convert it to a solidpython object
    #filename = "parts"
    obj = import_scad(filename)
    return obj.main()
    


import os
import solid as solidpython

# A dictionary to store the defined objects


def load_scad_objects():
    opsc_library_gen.gen_library(defined_objects)

import random

def test(num_objects):
    objects = []
    for i in range(num_objects):
        # Choose a random shape
        #shape = random.choice(['cube', 'sphere', 'cylinder', 'hole', 'slot', "rounded_rectangle"])
        shape = random.choice(["rounded_rectangle"])

        # Choose a random type
        type = random.choice(['positive', 'negative'])
        
        # Create an empty object dictionary
        obj = {'shape': shape, 'type': type}
        
        # Set shape-specific parameters
        if obj['shape'] in ['cube']:
            obj['size'] =  [random.uniform(5, 15), random.uniform(5, 15), random.uniform(5, 15)]
        if obj['shape'] in ['rounded_rectangle']:
            obj['size'] =  [random.uniform(5, 15), random.uniform(5, 15), random.uniform(5, 15)]
            obj['r'] = random.uniform(0.5, 5)
        elif obj['shape'] == 'sphere':
            obj['r'] = random.uniform(5, 15)
        elif obj['shape'] in ['cylinder', 'hole']:
            obj['r'] = random.uniform(0.5, 5)
            obj['h'] = random.uniform(5, 15)
        elif obj['shape'] == 'slot':
            obj['r'] = random.uniform(0.5, 5)
            obj['h'] = random.uniform(5, 15)
            obj['w'] = random.uniform(5, 15)
        
        # Set a random position and rotation
        obj['pos'] = [random.uniform(-20, 20), random.uniform(-20, 20), random.uniform(-20, 20)]
        obj['rot'] = [random.uniform(-180, 180), random.uniform(-180, 180), random.uniform(-180, 180)]
        
        # Add the object to the list
        objects.append(obj)
    return objects

####### old file saving
def saveToAll(fileIn):
    saveToDxf(fileIn)
    saveToPng(fileIn)
    saveToStl(fileIn)
    saveToSvg(fileIn)

def saveToDxf(fileIn, fileOut="", copy_to_laser=True):
    if fileOut == "":
        fileOut = fileIn.replace(".scad",".dxf")
    saveToFile(fileIn, fileOut)


    
def saveToPng(fileIn, fileOut="",extra="--render"):
    if fileOut == "":
        fileOut = fileIn.replace(".scad",".png")
    saveToFile(fileIn, fileOut)

def saveToStl(fileIn, fileOut=""):
    if fileOut == "":
        fileOut = fileIn.replace(".scad",".stl")
    saveToFile(fileIn, fileOut)
    
def saveToSvg(fileIn, fileOut=""):
    if fileOut == "":
        fileOut = fileIn.replace(".scad",".svg")
    saveToFile(fileIn, fileOut)

def saveToFile(fileIn, fileOut,extra=""):
    #extra = extra + " --colorscheme Tomorrow"

    launchStr = 'openscad -o "' + fileOut + '"' + extra + ' "' + fileIn + '"'
    if ".png" in fileOut:
        launchStr = launchStr + " --render"
    print("            saveToFile launch string: " + launchStr)
    subprocess.run(launchStr)
    x=0

def getLaser(final_object,start=1.5,layers=1,thickness=3,tilediff=200):
        rv= []

        for x in range(layers):
            rv.append(translate([0,x*tilediff,0])(
                    projection()(
                        intersection()(translate([-500,-500,start+x*thickness])(cube(size=[1000,1000,0.1])),
                            final_object
                        )
                    )
            )
            )
            
        return union()(rv)

set_mode("laser")
load_scad_objects() 
 
************************************************/
